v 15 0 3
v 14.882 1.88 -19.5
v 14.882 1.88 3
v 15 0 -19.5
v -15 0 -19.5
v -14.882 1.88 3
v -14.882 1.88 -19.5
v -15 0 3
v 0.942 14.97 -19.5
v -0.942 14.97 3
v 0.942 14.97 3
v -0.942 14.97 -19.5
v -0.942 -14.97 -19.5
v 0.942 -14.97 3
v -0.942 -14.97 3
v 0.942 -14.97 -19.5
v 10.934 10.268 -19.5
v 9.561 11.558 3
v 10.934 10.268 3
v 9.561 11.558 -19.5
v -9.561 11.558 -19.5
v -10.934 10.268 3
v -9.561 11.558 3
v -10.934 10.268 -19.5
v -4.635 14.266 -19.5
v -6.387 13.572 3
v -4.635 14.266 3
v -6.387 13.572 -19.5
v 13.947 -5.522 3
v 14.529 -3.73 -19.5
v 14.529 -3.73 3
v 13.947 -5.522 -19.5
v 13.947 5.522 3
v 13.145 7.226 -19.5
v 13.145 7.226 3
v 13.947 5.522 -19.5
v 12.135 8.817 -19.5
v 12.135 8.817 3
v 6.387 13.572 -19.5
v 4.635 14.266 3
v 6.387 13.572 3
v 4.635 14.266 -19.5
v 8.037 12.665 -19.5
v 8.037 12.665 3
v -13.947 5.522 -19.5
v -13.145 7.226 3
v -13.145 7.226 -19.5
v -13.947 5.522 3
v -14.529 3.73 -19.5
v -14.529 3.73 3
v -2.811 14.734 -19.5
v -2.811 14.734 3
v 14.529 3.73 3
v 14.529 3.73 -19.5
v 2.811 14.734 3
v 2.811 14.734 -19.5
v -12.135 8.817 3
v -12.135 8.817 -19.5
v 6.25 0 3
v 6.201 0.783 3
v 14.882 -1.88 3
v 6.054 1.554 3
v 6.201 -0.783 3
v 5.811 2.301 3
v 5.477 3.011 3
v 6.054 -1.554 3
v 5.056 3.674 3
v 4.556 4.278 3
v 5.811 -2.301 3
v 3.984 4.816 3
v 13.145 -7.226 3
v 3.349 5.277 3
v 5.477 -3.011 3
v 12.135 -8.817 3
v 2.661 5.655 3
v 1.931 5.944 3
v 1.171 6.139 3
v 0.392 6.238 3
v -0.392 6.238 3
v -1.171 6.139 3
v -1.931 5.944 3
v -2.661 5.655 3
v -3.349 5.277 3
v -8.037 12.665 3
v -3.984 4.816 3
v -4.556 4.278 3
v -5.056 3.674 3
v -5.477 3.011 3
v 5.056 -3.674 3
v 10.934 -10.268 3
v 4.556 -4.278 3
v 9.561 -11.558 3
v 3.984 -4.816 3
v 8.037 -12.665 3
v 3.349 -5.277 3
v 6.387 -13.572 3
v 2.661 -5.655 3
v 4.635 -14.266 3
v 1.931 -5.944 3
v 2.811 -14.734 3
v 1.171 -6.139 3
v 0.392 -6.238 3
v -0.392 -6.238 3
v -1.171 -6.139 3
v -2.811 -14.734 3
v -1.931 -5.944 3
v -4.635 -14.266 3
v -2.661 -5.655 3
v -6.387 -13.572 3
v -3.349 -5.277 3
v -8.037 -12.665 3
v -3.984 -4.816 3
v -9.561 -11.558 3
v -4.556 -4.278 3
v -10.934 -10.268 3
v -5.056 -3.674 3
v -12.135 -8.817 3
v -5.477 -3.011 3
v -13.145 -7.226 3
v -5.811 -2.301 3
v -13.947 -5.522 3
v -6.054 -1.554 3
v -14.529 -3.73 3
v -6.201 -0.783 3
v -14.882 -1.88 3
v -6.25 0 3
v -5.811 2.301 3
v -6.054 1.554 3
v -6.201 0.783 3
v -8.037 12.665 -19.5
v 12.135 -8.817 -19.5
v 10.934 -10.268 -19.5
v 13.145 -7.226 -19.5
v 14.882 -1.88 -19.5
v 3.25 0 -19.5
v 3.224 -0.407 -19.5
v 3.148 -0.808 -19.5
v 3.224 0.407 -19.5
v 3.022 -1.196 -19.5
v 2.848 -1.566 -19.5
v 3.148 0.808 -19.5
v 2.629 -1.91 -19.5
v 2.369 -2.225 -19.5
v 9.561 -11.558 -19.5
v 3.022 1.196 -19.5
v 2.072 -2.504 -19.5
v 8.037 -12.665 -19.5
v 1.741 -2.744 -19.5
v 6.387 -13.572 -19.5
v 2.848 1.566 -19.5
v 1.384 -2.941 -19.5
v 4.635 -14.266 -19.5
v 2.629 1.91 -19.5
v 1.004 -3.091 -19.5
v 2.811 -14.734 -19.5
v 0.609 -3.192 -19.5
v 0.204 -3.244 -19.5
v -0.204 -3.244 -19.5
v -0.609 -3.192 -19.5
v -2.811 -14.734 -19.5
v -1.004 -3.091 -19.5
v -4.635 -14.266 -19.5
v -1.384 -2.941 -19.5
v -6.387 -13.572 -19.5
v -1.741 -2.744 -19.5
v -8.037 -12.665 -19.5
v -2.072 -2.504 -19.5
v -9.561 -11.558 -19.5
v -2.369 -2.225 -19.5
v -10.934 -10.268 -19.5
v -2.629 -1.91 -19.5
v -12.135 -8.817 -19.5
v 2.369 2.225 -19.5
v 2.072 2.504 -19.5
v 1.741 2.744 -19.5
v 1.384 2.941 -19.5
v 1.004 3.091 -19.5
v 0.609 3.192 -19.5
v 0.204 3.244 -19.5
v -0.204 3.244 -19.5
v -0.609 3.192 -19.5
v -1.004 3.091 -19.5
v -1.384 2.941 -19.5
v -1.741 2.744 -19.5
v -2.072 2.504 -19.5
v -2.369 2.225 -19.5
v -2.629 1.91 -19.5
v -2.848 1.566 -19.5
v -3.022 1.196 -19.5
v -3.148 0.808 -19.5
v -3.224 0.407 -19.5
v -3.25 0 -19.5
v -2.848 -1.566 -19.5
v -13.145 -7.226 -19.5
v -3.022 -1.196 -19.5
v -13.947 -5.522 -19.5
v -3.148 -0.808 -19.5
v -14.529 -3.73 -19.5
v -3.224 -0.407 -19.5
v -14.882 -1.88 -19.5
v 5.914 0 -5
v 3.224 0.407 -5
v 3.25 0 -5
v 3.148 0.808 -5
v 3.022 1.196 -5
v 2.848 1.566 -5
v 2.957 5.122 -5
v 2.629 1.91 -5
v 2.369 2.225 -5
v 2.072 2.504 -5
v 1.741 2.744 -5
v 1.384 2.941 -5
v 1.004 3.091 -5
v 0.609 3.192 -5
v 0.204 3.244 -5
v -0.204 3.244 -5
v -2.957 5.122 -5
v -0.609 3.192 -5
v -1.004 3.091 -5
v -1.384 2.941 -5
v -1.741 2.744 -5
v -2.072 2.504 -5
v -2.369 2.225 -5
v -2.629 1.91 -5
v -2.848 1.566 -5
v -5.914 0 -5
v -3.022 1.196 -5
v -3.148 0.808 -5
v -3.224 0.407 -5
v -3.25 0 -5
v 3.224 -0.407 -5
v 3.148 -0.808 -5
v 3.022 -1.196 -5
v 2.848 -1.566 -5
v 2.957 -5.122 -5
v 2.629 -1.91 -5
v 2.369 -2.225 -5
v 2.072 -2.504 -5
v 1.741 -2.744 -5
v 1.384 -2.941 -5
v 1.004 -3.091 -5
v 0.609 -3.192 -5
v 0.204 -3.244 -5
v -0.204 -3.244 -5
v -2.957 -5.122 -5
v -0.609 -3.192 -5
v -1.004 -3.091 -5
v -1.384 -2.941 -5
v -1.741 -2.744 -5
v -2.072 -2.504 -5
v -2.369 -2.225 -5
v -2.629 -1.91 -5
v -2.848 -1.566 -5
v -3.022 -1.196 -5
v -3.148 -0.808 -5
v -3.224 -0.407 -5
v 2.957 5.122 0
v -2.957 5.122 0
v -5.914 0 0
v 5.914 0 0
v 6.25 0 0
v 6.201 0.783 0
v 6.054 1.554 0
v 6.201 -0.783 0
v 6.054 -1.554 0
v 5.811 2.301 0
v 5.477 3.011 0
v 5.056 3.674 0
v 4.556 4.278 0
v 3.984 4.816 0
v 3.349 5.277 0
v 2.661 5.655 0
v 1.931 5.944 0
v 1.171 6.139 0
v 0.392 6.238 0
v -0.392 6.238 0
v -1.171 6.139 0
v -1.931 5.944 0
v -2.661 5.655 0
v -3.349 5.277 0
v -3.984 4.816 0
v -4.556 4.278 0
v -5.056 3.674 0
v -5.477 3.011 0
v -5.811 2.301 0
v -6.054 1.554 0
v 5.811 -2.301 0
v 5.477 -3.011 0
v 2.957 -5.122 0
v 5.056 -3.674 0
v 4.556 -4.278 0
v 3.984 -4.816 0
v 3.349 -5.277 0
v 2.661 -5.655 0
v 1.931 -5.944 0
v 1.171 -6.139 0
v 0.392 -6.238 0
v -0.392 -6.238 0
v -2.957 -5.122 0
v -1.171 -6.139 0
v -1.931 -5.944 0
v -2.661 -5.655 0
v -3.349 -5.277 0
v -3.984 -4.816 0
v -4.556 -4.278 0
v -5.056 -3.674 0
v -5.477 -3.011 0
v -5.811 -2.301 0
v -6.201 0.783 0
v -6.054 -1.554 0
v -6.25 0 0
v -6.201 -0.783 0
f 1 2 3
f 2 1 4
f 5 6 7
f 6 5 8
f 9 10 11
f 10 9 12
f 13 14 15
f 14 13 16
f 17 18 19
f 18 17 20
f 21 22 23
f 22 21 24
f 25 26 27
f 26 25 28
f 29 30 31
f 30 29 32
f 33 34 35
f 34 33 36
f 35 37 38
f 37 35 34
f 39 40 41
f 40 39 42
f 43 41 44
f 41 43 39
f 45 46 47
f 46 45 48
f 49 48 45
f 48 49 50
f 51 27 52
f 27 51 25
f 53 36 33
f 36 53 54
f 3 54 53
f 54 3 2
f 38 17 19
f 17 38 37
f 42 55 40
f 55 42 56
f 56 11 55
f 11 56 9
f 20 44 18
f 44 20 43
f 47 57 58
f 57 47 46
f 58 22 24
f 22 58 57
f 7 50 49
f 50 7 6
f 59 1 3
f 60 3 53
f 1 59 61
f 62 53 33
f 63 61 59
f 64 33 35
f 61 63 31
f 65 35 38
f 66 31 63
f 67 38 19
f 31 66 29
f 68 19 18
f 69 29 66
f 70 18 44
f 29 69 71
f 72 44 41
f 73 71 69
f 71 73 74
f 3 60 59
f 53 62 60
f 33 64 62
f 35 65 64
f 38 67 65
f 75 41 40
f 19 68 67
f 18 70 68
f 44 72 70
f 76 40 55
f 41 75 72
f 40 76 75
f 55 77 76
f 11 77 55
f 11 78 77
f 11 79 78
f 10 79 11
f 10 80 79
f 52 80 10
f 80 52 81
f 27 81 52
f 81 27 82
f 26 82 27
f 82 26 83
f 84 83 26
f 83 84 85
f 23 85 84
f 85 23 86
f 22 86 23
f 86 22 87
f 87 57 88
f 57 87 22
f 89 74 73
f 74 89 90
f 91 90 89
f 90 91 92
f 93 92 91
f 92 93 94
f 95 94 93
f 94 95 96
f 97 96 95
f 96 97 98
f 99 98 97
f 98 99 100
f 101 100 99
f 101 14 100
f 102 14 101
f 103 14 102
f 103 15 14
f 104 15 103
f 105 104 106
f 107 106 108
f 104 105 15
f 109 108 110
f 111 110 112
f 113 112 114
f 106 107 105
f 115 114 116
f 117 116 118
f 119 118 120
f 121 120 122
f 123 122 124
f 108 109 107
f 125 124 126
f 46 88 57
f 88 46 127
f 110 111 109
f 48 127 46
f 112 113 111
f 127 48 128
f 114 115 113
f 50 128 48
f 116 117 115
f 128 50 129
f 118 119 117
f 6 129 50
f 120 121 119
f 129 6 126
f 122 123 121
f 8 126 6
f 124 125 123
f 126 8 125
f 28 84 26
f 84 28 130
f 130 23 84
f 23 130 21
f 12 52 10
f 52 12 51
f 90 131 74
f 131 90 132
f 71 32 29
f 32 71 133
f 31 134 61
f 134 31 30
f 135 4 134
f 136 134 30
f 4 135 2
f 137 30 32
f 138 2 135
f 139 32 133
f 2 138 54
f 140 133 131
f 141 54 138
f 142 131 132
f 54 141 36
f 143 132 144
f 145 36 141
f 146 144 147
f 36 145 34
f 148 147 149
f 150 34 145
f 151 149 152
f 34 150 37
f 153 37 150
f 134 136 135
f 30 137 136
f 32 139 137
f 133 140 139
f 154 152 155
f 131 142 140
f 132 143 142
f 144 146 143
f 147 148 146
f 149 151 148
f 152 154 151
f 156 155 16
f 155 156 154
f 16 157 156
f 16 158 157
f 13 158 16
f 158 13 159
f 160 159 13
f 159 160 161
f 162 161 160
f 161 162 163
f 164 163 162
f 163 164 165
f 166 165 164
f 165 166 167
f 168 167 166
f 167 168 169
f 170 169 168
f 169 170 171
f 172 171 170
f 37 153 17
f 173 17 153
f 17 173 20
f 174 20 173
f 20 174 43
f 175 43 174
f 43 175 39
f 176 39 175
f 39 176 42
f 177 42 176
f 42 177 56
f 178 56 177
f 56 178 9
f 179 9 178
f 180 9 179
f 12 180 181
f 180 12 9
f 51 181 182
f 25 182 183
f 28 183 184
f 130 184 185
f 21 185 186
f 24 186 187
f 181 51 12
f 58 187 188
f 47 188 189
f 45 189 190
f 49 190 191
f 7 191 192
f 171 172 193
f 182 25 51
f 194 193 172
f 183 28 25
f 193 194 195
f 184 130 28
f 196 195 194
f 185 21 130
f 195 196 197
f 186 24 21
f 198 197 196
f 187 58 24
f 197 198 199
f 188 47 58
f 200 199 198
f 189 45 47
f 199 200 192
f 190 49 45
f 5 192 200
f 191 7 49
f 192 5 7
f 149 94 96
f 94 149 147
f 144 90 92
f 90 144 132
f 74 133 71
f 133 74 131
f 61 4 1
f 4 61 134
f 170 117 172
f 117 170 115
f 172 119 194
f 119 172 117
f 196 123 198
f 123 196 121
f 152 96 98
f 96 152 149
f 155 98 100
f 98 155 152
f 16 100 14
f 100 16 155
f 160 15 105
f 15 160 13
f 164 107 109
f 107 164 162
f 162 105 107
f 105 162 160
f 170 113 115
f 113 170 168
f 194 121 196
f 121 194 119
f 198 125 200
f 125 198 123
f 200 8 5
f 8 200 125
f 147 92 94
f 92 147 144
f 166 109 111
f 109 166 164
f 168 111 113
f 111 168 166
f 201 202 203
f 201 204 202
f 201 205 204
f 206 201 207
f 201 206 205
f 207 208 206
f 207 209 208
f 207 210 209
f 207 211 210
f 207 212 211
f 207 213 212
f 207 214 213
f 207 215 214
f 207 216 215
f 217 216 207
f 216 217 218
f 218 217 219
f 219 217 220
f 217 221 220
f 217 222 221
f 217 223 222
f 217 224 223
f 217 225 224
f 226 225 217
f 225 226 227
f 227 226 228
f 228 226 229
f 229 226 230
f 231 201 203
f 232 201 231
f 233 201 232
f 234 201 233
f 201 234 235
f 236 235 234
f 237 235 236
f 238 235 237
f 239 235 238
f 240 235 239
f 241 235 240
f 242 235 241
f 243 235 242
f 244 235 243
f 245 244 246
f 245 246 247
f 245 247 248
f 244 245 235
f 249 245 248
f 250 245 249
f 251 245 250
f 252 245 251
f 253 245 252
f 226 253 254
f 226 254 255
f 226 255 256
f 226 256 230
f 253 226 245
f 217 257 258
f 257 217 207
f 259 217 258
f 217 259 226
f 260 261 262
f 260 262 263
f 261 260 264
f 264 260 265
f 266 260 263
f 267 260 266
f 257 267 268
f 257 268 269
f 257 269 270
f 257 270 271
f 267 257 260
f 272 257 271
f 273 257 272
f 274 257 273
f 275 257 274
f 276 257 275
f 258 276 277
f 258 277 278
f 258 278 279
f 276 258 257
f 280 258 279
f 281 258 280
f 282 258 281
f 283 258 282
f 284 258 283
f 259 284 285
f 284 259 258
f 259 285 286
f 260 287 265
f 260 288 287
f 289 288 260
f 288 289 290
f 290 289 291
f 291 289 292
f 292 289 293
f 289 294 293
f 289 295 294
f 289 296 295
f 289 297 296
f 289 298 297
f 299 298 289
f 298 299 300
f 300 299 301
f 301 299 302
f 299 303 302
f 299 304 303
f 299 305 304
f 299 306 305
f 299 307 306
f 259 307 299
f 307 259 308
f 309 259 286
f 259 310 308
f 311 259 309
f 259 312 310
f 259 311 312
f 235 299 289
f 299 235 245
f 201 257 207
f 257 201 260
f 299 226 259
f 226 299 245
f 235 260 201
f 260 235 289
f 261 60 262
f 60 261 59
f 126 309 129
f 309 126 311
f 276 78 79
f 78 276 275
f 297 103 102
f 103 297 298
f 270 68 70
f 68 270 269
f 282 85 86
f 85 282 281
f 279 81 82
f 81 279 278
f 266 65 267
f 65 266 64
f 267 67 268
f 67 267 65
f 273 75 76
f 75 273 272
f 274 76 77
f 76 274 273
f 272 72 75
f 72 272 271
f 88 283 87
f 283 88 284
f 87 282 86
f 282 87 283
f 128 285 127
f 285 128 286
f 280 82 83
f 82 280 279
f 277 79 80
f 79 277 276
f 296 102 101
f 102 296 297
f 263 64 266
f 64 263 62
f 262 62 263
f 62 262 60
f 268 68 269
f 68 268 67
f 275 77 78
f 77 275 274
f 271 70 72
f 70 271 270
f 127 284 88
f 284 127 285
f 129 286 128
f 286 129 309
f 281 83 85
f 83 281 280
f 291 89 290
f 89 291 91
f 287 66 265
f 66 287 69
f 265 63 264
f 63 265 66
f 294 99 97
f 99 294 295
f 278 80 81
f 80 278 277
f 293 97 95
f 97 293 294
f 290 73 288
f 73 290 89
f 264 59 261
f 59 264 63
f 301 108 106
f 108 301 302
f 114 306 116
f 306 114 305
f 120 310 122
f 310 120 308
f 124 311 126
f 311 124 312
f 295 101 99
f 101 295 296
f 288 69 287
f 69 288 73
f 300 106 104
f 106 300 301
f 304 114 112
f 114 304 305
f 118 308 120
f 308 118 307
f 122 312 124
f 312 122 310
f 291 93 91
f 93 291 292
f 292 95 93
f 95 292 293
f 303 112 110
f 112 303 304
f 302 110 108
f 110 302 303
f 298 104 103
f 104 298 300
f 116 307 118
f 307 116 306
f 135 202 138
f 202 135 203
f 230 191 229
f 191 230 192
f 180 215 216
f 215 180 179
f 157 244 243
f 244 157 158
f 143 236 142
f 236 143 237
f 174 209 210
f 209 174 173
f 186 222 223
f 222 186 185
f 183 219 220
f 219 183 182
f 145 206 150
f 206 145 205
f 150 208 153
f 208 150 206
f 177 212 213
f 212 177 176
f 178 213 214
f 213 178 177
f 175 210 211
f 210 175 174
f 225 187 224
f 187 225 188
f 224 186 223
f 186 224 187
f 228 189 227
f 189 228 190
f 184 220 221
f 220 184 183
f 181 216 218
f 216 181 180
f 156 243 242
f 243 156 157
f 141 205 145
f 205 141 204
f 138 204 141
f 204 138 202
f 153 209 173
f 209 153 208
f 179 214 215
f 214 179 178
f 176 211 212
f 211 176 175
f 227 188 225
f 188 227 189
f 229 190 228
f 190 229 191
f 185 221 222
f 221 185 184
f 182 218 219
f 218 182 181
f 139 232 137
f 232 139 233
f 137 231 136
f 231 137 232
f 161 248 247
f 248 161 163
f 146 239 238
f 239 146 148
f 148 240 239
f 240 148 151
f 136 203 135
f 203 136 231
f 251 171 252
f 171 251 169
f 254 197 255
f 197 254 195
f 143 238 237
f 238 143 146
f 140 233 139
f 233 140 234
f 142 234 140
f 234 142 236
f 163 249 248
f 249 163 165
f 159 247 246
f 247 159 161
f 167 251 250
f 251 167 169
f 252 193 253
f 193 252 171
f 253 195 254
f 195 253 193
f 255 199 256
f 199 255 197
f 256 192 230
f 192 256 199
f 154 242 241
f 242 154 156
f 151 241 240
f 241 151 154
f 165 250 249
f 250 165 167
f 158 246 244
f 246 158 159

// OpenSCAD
$fn = 50;

difference() {
	union() {
		translate(v = [0, 0, -19.5]) {
			cylinder(h = 22.5, r = 15.0);
		}
		#translate(v = [0, 0, -21.0]) {
			cylinder(h = 21, r = 2.875);
		}
	}
	union() {
		translate(v = [0, 0, 0]) {
			rotate(a = [0, 0, 0]) {
				difference() {
					union() {
						translate(v = [0, 0, -5]) {
							linear_extrude(height = 5) {
								polygon(points = [[5.914249999999999, 0.0], [2.957125, 5.1218907443321156], [-2.9571249999999982, 5.1218907443321156], [-5.914249999999999, 7.242867331857232e-16], [-2.9571250000000022, -5.121890744332115], [2.9571249999999956, -5.121890744332118]]);
							}
						}
					}
					union();
				}
			}
		}
		#cylinder(h = 3, r = 6.25);
		#translate(v = [0, 0, -100.0]) {
			cylinder(h = 200, r = 3.25);
		}
	}
}
